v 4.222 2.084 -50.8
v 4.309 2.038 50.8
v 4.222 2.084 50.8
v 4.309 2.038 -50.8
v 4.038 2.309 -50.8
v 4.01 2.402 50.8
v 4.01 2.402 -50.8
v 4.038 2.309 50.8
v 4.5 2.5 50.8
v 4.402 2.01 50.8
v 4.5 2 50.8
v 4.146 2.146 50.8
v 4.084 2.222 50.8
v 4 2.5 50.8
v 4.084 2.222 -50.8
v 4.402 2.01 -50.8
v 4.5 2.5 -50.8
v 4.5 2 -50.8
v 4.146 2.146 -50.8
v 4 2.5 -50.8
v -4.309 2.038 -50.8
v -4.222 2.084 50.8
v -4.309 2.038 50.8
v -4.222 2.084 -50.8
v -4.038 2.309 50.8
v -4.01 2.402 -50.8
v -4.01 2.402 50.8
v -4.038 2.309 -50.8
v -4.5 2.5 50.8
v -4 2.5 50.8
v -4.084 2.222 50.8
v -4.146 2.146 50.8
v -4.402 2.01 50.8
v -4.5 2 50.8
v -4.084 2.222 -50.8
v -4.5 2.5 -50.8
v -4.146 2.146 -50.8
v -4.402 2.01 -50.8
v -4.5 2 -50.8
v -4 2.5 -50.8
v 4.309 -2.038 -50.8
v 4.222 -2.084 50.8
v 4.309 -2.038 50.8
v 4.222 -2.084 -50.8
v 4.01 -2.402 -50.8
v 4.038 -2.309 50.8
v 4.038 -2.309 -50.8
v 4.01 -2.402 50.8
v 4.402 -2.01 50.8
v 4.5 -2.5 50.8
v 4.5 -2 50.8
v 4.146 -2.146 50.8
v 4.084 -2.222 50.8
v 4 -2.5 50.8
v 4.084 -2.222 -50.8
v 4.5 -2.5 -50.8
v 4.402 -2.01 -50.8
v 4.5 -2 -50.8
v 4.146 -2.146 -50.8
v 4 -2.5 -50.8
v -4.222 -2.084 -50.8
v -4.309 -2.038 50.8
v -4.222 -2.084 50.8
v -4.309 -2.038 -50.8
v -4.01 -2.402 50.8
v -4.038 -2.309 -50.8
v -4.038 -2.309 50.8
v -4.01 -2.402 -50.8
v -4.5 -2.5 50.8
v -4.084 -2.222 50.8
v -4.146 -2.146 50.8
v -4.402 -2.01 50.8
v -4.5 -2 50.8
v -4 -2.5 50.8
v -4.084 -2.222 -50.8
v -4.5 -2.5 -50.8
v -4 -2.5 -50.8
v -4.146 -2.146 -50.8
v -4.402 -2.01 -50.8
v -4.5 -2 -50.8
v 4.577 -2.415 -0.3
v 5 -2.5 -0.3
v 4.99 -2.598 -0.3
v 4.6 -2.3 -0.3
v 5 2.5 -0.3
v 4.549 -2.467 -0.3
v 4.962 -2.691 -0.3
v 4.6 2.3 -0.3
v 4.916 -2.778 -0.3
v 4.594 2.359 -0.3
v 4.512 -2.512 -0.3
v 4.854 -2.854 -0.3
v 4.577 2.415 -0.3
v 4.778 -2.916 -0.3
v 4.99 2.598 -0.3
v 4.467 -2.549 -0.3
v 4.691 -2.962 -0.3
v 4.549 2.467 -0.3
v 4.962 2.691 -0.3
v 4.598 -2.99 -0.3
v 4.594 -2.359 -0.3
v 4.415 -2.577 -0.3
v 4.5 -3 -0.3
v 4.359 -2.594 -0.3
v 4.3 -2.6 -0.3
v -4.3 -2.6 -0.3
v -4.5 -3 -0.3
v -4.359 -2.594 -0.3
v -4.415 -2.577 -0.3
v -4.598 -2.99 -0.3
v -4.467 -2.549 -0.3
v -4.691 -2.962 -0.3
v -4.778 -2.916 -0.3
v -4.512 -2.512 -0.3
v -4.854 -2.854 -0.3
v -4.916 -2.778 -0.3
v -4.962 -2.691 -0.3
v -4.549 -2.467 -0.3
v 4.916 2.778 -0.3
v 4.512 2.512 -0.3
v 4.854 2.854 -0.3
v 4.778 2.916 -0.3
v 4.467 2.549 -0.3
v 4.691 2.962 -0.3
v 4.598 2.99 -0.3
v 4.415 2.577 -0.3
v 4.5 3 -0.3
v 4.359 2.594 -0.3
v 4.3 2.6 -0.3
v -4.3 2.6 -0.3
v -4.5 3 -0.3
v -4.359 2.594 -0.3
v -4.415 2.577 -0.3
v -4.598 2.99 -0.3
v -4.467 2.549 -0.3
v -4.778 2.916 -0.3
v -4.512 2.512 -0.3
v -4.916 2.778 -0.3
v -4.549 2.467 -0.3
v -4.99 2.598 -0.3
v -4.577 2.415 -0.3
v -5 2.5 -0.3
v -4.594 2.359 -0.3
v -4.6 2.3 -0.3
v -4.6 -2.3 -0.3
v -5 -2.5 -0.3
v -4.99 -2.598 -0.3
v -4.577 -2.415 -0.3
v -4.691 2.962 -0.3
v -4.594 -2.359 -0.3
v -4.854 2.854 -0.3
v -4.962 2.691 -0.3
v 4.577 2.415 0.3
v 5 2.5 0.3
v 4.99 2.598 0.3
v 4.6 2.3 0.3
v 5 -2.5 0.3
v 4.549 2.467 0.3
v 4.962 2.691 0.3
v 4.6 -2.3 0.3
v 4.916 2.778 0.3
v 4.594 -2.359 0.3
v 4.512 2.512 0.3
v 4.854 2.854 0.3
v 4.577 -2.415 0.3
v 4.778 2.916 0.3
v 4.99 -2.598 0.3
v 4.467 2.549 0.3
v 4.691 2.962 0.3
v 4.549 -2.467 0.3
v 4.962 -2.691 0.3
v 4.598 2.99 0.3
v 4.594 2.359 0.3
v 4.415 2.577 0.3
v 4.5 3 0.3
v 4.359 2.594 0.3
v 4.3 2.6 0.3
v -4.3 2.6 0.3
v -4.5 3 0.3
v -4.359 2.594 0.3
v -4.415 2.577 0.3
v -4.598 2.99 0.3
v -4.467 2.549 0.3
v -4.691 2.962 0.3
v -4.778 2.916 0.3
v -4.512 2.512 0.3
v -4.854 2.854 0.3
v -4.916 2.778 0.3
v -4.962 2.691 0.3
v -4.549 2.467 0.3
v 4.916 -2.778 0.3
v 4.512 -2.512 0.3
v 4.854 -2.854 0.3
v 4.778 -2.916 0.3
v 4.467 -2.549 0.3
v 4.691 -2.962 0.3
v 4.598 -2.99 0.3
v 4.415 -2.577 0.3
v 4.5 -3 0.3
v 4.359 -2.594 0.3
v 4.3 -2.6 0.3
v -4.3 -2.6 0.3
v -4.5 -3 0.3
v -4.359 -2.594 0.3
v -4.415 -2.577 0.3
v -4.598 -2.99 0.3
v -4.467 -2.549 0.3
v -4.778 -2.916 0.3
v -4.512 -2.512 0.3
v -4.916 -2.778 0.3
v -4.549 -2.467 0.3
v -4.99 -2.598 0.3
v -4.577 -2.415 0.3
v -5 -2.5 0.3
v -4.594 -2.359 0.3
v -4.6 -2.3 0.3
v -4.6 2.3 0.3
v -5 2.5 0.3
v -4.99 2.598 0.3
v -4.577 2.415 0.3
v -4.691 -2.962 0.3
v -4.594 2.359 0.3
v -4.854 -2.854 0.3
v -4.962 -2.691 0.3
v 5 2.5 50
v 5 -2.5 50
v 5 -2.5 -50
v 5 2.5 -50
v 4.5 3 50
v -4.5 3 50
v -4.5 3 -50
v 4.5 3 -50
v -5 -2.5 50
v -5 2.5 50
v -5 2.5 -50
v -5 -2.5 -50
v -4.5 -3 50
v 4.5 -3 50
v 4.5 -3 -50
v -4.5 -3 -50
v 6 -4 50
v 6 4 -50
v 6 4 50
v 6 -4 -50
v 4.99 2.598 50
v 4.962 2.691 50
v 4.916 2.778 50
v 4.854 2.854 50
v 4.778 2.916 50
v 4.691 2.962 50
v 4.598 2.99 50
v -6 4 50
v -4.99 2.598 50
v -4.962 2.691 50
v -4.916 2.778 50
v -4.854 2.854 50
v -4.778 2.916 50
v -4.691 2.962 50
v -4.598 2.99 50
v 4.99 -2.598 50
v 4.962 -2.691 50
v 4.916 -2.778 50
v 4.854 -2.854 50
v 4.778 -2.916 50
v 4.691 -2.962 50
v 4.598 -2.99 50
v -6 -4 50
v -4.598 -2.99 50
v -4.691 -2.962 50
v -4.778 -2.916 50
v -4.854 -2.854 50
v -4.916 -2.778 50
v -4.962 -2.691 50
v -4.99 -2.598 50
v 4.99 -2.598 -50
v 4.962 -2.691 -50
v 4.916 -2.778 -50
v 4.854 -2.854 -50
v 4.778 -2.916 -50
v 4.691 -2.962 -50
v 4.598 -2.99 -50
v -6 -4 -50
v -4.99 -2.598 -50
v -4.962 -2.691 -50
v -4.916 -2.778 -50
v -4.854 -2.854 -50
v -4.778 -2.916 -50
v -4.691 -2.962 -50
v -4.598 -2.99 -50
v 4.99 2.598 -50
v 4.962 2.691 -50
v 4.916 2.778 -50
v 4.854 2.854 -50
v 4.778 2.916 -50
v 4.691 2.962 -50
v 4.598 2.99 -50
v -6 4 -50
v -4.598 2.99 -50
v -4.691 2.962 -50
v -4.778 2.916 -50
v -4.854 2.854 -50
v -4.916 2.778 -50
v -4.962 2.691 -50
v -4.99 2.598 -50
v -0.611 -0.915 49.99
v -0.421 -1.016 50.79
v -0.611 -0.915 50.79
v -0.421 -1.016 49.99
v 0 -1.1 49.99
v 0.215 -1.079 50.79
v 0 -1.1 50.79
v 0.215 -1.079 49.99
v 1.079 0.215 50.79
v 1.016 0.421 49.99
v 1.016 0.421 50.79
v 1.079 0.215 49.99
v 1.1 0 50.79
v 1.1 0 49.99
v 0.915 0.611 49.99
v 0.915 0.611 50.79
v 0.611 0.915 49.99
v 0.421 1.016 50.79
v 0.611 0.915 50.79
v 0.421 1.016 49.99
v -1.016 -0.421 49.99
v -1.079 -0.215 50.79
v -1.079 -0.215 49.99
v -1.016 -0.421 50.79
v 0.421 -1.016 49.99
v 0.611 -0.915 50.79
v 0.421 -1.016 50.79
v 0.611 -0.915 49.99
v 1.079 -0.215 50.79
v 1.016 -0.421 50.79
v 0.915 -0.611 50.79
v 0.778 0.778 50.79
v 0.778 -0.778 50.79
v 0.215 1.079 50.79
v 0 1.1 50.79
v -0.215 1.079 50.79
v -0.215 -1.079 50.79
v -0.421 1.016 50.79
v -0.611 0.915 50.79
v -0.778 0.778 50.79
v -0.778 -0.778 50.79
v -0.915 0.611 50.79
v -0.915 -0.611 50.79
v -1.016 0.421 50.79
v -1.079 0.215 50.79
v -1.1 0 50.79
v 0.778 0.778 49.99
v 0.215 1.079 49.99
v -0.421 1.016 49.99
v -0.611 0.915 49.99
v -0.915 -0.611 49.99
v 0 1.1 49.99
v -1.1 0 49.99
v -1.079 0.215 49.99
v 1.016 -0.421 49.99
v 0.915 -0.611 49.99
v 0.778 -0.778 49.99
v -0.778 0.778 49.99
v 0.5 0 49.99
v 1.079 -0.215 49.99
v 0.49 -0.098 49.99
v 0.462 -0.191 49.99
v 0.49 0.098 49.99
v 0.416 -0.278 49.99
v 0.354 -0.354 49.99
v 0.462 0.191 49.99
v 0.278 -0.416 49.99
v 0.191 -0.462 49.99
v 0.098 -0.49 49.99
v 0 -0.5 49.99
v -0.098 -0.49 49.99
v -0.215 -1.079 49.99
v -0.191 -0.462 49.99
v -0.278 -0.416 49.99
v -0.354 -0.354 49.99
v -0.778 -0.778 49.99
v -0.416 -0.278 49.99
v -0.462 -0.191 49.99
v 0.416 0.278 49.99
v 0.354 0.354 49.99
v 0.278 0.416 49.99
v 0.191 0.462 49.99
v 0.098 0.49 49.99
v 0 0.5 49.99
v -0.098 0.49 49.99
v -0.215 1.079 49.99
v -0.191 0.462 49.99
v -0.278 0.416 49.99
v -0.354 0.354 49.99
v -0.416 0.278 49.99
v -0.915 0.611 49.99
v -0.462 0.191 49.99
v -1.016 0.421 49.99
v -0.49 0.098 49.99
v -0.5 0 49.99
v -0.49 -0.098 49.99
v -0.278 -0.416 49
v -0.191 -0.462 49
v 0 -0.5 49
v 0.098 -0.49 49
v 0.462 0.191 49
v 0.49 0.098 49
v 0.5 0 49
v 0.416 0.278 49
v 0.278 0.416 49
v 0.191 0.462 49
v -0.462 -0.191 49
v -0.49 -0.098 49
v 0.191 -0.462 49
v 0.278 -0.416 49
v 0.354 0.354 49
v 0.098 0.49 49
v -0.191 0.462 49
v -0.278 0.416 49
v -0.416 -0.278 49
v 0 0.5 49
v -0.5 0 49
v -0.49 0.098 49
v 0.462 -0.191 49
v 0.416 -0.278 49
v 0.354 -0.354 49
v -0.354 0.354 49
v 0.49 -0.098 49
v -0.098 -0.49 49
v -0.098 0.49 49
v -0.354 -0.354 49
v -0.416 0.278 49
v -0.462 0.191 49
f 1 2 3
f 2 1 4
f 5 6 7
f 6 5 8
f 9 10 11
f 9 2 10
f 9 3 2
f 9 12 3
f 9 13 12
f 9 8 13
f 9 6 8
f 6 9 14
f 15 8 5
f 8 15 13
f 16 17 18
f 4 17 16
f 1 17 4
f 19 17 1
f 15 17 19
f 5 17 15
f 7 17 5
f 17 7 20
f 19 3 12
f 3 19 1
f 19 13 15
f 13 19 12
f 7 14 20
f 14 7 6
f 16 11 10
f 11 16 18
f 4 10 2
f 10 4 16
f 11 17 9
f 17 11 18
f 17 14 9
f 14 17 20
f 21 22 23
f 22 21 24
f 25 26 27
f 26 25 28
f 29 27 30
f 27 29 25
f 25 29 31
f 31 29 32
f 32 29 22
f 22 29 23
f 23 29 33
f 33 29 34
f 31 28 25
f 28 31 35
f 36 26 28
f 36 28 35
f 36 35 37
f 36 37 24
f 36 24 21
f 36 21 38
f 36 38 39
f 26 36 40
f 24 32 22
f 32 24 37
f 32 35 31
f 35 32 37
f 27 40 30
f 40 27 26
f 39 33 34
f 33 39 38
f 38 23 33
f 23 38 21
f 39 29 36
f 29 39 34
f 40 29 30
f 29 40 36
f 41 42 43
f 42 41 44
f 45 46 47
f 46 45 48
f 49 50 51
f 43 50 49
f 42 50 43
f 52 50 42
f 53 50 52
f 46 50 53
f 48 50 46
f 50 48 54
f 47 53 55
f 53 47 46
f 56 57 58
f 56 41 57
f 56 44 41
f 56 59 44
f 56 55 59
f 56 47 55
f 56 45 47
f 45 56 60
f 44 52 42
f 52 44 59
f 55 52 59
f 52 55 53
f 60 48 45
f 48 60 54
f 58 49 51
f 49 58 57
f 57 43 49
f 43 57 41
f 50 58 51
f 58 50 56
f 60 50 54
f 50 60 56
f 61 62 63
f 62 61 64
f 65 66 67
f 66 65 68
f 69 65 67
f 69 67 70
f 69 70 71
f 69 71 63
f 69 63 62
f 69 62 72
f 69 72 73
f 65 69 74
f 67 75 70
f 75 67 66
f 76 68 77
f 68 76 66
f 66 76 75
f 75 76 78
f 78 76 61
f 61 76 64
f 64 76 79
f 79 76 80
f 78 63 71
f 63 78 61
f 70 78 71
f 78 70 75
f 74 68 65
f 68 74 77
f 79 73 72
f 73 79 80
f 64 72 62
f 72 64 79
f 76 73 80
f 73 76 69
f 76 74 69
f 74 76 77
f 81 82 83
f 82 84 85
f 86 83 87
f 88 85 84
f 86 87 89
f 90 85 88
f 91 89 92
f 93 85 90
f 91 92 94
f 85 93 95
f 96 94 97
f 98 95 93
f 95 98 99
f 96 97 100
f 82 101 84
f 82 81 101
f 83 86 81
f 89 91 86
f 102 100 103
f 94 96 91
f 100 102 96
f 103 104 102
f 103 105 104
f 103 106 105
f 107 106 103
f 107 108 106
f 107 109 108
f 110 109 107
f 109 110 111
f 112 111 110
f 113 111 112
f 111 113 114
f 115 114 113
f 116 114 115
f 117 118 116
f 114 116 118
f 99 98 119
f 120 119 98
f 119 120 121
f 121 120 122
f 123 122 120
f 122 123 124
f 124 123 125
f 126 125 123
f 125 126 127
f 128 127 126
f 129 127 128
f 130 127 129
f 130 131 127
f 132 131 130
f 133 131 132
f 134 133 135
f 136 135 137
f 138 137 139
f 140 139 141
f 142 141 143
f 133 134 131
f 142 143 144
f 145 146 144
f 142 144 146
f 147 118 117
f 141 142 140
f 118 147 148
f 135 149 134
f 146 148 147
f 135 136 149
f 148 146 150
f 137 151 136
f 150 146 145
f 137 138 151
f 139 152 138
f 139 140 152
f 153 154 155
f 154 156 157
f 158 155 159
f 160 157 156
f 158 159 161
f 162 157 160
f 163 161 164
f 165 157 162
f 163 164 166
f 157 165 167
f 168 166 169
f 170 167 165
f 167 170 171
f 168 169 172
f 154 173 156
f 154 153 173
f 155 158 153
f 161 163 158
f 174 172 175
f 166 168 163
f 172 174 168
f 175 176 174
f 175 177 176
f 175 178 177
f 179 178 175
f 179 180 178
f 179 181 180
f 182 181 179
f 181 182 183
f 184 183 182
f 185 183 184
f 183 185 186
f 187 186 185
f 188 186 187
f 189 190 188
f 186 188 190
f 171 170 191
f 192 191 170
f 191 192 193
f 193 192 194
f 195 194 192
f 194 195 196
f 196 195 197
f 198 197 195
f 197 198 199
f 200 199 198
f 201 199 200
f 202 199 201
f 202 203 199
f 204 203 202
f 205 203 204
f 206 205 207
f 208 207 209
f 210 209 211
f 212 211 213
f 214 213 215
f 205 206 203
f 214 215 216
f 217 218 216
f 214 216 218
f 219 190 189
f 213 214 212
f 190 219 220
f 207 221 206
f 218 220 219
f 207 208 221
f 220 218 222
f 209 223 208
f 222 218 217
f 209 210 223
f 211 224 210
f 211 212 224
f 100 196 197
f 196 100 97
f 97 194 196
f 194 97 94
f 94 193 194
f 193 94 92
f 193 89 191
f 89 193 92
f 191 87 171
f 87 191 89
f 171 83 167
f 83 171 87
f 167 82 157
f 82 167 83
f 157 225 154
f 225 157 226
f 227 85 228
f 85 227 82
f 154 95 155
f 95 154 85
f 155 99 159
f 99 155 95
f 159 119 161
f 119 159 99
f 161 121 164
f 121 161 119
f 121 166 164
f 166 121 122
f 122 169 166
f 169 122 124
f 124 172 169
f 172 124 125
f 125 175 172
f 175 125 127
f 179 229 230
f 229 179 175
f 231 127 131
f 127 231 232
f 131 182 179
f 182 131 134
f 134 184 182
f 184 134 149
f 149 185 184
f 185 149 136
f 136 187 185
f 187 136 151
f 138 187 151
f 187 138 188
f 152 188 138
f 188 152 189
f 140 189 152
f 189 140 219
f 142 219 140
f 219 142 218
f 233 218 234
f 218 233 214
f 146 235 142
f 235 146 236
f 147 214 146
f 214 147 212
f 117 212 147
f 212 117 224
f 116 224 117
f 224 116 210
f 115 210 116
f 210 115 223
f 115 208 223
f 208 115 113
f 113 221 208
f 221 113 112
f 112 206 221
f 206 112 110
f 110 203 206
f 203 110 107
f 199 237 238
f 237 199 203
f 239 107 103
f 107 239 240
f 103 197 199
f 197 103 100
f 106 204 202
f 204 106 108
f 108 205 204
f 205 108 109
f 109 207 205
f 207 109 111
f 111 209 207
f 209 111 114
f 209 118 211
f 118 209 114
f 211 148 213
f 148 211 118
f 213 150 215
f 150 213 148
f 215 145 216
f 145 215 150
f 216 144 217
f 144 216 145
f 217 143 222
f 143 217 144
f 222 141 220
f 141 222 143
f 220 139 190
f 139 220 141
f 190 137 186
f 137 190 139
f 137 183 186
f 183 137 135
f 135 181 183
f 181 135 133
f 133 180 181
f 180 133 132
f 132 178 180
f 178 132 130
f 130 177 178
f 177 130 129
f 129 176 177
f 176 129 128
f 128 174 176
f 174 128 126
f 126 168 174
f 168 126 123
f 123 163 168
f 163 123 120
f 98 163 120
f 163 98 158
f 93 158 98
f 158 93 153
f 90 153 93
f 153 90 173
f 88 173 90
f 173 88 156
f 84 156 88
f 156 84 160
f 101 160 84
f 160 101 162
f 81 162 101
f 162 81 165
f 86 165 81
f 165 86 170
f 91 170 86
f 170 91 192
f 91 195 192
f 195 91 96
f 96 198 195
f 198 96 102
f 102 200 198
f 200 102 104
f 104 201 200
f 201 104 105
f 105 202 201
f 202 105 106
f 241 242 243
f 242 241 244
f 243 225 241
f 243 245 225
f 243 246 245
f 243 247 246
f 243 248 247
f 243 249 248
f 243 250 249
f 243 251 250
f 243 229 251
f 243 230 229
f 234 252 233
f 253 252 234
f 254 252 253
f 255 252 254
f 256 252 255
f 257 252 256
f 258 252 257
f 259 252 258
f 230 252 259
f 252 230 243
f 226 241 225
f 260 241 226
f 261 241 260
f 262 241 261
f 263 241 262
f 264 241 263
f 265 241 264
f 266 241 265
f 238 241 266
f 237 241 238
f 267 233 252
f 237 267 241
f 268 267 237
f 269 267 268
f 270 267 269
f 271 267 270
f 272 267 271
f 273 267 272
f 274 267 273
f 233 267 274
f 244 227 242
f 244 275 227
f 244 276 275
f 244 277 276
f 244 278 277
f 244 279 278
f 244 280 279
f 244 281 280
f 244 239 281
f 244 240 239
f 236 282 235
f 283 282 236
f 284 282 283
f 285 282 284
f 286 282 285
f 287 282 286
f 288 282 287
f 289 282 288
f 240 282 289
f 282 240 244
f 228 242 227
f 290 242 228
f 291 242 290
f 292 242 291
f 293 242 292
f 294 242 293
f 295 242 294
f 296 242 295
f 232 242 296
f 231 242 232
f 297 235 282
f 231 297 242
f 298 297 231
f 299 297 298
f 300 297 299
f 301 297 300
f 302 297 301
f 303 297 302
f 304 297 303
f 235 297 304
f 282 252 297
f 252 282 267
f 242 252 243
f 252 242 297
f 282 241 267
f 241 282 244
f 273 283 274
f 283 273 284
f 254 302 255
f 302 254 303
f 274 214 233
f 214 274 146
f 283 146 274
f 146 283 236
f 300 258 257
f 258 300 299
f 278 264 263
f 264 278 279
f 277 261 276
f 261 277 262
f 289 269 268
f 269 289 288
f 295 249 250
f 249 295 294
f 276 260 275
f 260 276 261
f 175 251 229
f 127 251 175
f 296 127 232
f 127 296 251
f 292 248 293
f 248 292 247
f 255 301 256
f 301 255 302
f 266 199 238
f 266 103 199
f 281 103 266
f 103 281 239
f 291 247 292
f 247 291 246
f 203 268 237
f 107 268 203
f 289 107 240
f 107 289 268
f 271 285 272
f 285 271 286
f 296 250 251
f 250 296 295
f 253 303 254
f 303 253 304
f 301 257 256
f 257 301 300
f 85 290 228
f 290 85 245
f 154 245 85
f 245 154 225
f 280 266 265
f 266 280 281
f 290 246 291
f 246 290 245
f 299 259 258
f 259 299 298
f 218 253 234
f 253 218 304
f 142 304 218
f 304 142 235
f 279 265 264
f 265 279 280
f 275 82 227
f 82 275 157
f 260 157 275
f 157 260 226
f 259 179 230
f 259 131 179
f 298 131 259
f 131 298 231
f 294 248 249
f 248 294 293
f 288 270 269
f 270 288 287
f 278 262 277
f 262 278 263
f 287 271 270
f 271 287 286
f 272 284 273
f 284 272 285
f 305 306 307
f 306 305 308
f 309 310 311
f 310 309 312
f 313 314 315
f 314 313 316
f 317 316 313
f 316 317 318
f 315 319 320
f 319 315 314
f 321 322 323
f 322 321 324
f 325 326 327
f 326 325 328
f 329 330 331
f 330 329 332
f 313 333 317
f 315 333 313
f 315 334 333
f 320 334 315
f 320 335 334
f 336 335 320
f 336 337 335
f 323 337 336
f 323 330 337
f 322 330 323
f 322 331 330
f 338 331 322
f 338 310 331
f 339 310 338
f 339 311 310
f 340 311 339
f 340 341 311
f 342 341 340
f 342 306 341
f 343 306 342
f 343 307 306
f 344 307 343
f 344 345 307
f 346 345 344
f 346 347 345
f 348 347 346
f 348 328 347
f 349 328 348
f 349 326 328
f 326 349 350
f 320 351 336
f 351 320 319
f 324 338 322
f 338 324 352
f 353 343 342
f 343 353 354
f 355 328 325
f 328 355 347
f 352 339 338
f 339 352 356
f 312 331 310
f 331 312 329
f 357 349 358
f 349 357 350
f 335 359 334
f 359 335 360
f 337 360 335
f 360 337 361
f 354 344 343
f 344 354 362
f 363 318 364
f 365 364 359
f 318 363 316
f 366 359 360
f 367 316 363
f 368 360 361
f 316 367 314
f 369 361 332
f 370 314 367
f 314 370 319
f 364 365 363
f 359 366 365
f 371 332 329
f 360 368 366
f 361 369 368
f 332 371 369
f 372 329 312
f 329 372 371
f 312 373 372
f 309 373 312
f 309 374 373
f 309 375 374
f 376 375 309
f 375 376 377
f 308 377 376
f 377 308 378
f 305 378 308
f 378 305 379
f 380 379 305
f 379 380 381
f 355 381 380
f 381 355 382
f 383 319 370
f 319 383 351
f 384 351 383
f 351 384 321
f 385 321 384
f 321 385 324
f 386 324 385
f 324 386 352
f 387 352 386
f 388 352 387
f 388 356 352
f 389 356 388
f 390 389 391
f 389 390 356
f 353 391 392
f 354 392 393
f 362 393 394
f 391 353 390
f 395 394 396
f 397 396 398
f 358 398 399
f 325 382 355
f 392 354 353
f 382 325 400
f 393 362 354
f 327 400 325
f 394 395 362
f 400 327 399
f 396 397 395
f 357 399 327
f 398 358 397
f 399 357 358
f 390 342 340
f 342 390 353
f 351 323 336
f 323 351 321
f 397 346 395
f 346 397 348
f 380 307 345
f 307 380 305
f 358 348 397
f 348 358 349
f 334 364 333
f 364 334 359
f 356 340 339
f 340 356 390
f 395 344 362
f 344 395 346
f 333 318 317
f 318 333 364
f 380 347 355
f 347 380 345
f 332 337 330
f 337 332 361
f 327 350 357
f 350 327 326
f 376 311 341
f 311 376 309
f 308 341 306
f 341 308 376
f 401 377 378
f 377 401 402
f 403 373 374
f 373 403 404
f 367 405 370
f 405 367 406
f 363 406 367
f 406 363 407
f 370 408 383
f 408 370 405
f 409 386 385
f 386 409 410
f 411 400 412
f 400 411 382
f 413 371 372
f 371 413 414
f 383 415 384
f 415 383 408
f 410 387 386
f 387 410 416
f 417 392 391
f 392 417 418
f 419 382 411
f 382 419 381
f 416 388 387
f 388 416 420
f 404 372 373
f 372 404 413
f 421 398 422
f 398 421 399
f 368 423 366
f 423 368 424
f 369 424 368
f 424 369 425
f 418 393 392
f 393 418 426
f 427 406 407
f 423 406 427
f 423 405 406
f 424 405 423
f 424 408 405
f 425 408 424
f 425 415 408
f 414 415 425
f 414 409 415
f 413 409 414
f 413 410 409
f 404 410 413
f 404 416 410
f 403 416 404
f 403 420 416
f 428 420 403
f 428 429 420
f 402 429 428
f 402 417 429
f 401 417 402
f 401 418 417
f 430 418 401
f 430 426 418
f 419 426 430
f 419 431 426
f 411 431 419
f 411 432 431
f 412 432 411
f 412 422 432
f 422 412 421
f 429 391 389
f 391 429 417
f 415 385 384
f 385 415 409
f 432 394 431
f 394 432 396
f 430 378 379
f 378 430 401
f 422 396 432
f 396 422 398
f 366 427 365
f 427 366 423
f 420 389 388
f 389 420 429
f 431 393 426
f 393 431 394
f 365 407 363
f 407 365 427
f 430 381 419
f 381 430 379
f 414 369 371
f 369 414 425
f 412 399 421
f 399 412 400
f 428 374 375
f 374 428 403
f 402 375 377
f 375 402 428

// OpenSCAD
// Parameters (mm)
total_length_mm = 12; //[6:24:0.5]
outer_width_mm = 12; //[6:24:0.5]
outer_height_mm = 8; //[4:16:0.5]
wall_thickness_mm = 1; //[0.5:2:0.1]
internal_corner_fillet_radius_mm = 0.5; //[0.25:1:0.05]
length_mm = 100; //[12:240:1]
centered = 1; //[0:1:1]
overlap_mm = 0.8; //[0.5:2:0.1]
material = 1; //[1:1:1]

// Quality
$fn=32;

// ---------- Helpers ----------
module _rounded_rect_2d(w, h, r) {
  r2 = min(r, min(w, h)/2);
  hull() {
    translate([ w/2 - r2,  h/2 - r2]) circle(r=r2);
    translate([-w/2 + r2,  h/2 - r2]) circle(r=r2);
    translate([-w/2 + r2, -h/2 + r2]) circle(r=r2);
    translate([ w/2 - r2, -h/2 + r2]) circle(r=r2);
  }
}

module _tube_with_internal_fillets(ow, oh, L, t, r, overlap) {
  // Outer is sharp rectangle; inner void has rounded corners (fillets)
  // This yields a realistic hollow tube with internal corner radii.
  difference() {
    cube([ow, oh, L], center=true);

    // Inner void with filleted corners
    translate([0,0,0])
      linear_extrude(height=L + 2*overlap, center=true, convexity=10)
        _rounded_rect_2d(ow - 2*t, oh - 2*t, r);
  }
}

// ---------- Base-shape modules (MANDATORY) ----------

module box_corner_profile_section() {
  // Represents one internal corner fillet "profile section" as a quarter-cylinder
  // positioned at the inner corner location.
  color([0.85, 0.85, 0.88, 0.55]) {
    translate([
      outer_width_mm/2 - wall_thickness_mm - internal_corner_fillet_radius_mm,
      outer_height_mm/2 - wall_thickness_mm - internal_corner_fillet_radius_mm,
      0
    ])
    intersection() {
      cylinder(r=internal_corner_fillet_radius_mm, h=length_mm + 2*overlap_mm, center=true);
      // Keep only the quadrant facing inward (toward -x, -y from this corner)
      translate([-internal_corner_fillet_radius_mm/2, -internal_corner_fillet_radius_mm/2, 0])
        cube([internal_corner_fillet_radius_mm, internal_corner_fillet_radius_mm, length_mm + 2*overlap_mm + 0.2], center=true);
    }
  }
}

module box_corner_profile_sections() {
  // Four mirrored corner profile sections
  union() {
    box_corner_profile_section();
    mirror([1,0,0]) box_corner_profile_section();
    mirror([0,1,0]) box_corner_profile_section();
    mirror([0,1,0]) mirror([1,0,0]) box_corner_profile_section();
  }
}

module corner() {
  // "Corner" component: show the internal fillet volumes as a connected set,
  // plus a thin reference ring to make it visually recognizable as a corner feature.
  color([0.80, 0.82, 0.86, 0.65]) {
    union() {
      box_corner_profile_sections();

      // Subtle visual cue: a thin inner perimeter ring at mid-length
      // (kept small to avoid altering the intended boolean behavior elsewhere)
      translate([0,0,0])
        linear_extrude(height=0.6, center=true)
          difference() {
            _rounded_rect_2d(outer_width_mm - 2*wall_thickness_mm, outer_height_mm - 2*wall_thickness_mm, internal_corner_fillet_radius_mm);
            _rounded_rect_2d(outer_width_mm - 2*wall_thickness_mm - 0.8, outer_height_mm - 2*wall_thickness_mm - 0.8, max(internal_corner_fillet_radius_mm-0.2, 0.05));
          }
    }
  }
}

module box_shelf_screw_positions() {
  // Represent "top screws" as short screw heads + shanks at the top face.
  // Plan provides one cylinder at center; we keep that and add a realistic screw-like form.
  screw_shank_r = wall_thickness_mm/2;
  screw_head_r  = max(screw_shank_r*1.8, screw_shank_r + 0.6);
  shank_h = max(wall_thickness_mm, 1);
  head_h  = max(wall_thickness_mm*0.7, 0.8);

  color([0.35, 0.35, 0.38]) {
    translate([0,0,length_mm/2 - wall_thickness_mm/2]) {
      union() {
        // Shank
        cylinder(r=screw_shank_r, h=shank_h, center=true);

        // Head (slightly above)
        translate([0,0, (shank_h+head_h)/2 - 0.01])
          cylinder(r=screw_head_r, h=head_h, center=true);

        // Simple cross recess
        difference() {
          translate([0,0, (shank_h+head_h)/2 - 0.01])
            cylinder(r=screw_head_r, h=head_h, center=true);
          translate([0,0, (shank_h+head_h)/2 - 0.01]) {
            cube([screw_head_r*1.6, screw_head_r*0.35, head_h+0.2], center=true);
            cube([screw_head_r*0.35, screw_head_r*1.6, head_h+0.2], center=true);
          }
        }
      }
    }
  }
}

module box_section() {
  // Final tube body per plan: outer box minus inner void minus internal_corner_fillet union,
  // then union with screw position feature.
  color([0.75, 0.75, 0.77]) {
    union() {
      // Tube body with internal fillets (implemented directly as rounded inner void)
      _tube_with_internal_fillets(
        outer_width_mm,
        outer_height_mm,
        length_mm,
        wall_thickness_mm,
        internal_corner_fillet_radius_mm,
        overlap_mm
      );

      // Add the screw position feature (as in plan union)
      box_shelf_screw_positions();
    }
  }
}

// ---------- Assembly ----------
module assembly() {
  // PRIMARY at origin: corner (as requested)
  // SECONDARY attaches/overlaps with primary: box_section and screw feature are co-located.
  // No floating parts: all share the same coordinate system and intersect/attach.
  corner();
  box_section();
}

assembly();
